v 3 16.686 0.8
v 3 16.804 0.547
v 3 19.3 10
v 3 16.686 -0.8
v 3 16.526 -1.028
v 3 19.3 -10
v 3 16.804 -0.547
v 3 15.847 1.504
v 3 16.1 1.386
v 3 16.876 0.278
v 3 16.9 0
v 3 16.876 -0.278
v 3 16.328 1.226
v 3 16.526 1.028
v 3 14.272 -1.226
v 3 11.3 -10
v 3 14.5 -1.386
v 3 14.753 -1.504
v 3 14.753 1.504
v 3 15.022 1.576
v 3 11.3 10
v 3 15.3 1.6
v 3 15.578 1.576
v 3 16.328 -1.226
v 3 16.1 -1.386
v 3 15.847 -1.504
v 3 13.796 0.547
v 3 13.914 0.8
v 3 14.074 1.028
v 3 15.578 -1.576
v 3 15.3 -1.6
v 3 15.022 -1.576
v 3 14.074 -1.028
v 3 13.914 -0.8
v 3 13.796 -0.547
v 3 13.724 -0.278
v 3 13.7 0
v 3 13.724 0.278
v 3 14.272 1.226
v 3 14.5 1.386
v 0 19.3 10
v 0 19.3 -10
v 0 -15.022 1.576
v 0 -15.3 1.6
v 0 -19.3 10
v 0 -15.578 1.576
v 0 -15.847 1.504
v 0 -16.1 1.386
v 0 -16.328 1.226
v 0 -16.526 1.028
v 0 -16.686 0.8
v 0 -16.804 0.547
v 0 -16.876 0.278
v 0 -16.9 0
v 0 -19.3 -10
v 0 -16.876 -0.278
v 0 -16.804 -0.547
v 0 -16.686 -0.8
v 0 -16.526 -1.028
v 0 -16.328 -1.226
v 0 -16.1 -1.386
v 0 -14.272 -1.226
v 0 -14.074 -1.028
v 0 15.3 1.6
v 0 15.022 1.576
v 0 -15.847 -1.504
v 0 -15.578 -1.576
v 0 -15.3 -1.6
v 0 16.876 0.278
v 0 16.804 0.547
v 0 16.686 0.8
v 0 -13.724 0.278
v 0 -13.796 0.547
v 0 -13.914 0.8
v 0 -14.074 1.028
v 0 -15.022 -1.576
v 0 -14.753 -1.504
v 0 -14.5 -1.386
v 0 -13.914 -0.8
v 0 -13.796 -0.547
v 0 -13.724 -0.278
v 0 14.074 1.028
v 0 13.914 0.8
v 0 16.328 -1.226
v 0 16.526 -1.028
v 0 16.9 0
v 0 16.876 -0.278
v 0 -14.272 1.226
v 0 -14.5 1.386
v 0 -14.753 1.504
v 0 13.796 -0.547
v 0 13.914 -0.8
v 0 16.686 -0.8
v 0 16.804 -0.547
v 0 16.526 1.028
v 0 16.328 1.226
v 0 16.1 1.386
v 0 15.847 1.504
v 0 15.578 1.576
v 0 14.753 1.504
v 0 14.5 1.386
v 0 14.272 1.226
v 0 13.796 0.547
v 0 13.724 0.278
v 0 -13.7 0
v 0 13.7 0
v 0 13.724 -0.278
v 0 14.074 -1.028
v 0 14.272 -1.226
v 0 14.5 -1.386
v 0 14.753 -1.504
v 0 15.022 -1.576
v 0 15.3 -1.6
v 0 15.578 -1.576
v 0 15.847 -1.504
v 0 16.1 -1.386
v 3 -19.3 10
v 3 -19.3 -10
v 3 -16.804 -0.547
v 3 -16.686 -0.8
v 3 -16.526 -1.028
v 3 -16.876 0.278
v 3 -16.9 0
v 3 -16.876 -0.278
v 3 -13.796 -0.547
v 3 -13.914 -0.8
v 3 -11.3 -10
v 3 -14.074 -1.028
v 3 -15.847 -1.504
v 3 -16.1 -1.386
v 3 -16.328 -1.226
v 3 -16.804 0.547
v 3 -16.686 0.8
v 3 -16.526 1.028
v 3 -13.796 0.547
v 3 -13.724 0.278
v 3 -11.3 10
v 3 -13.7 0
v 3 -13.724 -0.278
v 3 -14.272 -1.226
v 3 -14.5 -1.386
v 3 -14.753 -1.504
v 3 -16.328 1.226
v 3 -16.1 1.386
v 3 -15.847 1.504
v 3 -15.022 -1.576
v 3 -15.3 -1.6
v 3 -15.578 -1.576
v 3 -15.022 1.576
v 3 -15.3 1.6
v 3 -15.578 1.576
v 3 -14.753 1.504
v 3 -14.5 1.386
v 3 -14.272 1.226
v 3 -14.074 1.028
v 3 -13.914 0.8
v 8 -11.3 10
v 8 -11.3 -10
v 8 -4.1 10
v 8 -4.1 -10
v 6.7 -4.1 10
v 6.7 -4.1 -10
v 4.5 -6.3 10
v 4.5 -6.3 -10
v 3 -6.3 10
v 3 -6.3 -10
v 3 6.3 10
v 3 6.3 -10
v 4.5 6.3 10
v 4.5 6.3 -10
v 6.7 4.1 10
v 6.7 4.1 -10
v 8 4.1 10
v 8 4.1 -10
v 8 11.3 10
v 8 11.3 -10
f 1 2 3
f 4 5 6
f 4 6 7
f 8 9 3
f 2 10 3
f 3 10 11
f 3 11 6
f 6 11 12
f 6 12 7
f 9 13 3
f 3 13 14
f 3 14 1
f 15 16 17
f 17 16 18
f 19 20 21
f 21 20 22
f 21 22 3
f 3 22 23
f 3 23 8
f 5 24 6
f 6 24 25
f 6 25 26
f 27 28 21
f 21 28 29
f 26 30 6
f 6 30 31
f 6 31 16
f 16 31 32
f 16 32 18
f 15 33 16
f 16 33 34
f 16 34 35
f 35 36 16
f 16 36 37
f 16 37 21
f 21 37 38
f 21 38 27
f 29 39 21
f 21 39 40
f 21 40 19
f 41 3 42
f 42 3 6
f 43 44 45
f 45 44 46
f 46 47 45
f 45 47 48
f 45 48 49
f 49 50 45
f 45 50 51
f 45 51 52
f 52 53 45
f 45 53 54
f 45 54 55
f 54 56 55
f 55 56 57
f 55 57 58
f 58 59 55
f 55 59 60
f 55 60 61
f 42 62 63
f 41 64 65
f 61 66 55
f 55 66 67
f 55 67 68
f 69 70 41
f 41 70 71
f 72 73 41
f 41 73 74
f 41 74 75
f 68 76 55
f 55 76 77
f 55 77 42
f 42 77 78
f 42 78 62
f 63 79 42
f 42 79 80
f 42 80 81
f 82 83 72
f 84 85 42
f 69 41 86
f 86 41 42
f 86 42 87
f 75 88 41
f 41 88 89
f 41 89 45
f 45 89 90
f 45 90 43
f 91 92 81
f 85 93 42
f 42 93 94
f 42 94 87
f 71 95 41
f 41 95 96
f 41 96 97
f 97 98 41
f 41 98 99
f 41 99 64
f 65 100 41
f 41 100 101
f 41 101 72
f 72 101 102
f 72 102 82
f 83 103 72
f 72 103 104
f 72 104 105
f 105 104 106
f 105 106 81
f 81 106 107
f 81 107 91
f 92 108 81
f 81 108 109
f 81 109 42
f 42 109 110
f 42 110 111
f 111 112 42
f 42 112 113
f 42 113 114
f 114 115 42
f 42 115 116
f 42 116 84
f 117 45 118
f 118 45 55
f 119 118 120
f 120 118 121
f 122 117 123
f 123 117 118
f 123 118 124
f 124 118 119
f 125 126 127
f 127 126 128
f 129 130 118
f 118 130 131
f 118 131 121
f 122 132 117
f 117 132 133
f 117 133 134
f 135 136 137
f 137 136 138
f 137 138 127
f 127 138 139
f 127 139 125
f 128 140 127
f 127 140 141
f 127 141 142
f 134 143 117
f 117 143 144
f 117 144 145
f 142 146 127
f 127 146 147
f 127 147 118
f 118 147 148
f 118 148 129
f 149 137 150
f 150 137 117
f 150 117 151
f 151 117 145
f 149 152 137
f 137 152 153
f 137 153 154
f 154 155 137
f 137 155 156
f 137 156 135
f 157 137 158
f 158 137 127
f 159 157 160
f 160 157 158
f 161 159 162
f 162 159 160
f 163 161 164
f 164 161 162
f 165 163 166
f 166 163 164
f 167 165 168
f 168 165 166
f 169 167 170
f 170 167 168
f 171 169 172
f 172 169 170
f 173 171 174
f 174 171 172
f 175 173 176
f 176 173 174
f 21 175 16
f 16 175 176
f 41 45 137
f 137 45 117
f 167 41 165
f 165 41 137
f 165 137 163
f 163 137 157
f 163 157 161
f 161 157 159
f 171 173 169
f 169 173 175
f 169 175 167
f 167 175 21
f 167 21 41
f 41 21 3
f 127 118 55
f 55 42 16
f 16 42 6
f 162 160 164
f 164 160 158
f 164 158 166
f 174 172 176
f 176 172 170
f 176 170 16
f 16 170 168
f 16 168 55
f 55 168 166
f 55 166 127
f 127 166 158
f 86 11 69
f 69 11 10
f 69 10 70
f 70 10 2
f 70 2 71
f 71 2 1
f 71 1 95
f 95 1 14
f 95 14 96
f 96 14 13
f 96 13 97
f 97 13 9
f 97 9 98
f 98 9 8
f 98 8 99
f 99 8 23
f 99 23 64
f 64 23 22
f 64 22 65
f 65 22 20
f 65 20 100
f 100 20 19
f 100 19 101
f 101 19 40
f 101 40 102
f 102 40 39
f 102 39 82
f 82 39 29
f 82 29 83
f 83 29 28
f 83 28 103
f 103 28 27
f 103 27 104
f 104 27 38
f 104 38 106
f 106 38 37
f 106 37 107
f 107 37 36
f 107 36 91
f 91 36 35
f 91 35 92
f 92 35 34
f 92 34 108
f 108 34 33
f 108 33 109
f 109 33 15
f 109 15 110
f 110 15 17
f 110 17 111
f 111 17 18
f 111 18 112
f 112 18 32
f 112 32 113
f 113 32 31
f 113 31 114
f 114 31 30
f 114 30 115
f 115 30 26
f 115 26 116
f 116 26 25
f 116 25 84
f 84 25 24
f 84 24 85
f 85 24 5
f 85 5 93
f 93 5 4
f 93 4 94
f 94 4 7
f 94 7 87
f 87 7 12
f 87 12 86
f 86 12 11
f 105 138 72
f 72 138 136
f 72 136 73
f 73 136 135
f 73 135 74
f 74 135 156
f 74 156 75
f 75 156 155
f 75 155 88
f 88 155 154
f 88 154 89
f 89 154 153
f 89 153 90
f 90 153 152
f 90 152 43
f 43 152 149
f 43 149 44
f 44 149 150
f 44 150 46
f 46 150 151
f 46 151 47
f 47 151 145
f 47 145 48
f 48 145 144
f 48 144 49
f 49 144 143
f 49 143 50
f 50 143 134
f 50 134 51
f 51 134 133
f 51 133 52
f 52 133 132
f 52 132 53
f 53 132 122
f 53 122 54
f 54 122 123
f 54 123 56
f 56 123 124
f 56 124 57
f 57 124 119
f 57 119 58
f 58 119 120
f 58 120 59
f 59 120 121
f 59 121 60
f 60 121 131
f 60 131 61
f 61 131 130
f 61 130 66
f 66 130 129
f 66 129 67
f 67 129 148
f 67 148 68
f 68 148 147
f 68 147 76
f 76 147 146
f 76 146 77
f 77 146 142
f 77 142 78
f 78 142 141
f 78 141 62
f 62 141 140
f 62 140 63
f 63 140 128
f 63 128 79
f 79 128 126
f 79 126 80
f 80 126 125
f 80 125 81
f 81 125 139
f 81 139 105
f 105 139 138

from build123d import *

# Parameters (mm, degrees)
MAIN_DEPTH         = 10
SKETCH2_R          = 1.6
CUT_EXTRUDE1_DEPTH = 4


with BuildPart() as part:
    # Sketch1 → Main (new body, symmetric)
    with BuildSketch(Plane.XY):
        Polygon((0, 19.3), (0, -19.3), (3, -19.3), (3, -11.3), (8, -11.3), (8, -4.1), (6.7, -4.1), (4.5, -6.3), (3, -6.3), (3, 6.3), (4.5, 6.3), (6.7, 4.1), (8, 4.1), (8, 11.3), (3, 11.3), (3, 19.3), align=None)
    extrude(amount=MAIN_DEPTH, both=True)

    # Sketch2 → Cut-Extrude1 (cut, through all)
    with BuildSketch(Plane(origin=(3, 0, 0), x_dir=(0, 0, -1), z_dir=(1, 0, 0))):
        with Locations((0, 15.3)):
            Circle(SKETCH2_R)
        with Locations((0, -15.3)):
            Circle(SKETCH2_R)
    extrude(amount=-CUT_EXTRUDE1_DEPTH, mode=Mode.SUBTRACT)


solid = part.part
